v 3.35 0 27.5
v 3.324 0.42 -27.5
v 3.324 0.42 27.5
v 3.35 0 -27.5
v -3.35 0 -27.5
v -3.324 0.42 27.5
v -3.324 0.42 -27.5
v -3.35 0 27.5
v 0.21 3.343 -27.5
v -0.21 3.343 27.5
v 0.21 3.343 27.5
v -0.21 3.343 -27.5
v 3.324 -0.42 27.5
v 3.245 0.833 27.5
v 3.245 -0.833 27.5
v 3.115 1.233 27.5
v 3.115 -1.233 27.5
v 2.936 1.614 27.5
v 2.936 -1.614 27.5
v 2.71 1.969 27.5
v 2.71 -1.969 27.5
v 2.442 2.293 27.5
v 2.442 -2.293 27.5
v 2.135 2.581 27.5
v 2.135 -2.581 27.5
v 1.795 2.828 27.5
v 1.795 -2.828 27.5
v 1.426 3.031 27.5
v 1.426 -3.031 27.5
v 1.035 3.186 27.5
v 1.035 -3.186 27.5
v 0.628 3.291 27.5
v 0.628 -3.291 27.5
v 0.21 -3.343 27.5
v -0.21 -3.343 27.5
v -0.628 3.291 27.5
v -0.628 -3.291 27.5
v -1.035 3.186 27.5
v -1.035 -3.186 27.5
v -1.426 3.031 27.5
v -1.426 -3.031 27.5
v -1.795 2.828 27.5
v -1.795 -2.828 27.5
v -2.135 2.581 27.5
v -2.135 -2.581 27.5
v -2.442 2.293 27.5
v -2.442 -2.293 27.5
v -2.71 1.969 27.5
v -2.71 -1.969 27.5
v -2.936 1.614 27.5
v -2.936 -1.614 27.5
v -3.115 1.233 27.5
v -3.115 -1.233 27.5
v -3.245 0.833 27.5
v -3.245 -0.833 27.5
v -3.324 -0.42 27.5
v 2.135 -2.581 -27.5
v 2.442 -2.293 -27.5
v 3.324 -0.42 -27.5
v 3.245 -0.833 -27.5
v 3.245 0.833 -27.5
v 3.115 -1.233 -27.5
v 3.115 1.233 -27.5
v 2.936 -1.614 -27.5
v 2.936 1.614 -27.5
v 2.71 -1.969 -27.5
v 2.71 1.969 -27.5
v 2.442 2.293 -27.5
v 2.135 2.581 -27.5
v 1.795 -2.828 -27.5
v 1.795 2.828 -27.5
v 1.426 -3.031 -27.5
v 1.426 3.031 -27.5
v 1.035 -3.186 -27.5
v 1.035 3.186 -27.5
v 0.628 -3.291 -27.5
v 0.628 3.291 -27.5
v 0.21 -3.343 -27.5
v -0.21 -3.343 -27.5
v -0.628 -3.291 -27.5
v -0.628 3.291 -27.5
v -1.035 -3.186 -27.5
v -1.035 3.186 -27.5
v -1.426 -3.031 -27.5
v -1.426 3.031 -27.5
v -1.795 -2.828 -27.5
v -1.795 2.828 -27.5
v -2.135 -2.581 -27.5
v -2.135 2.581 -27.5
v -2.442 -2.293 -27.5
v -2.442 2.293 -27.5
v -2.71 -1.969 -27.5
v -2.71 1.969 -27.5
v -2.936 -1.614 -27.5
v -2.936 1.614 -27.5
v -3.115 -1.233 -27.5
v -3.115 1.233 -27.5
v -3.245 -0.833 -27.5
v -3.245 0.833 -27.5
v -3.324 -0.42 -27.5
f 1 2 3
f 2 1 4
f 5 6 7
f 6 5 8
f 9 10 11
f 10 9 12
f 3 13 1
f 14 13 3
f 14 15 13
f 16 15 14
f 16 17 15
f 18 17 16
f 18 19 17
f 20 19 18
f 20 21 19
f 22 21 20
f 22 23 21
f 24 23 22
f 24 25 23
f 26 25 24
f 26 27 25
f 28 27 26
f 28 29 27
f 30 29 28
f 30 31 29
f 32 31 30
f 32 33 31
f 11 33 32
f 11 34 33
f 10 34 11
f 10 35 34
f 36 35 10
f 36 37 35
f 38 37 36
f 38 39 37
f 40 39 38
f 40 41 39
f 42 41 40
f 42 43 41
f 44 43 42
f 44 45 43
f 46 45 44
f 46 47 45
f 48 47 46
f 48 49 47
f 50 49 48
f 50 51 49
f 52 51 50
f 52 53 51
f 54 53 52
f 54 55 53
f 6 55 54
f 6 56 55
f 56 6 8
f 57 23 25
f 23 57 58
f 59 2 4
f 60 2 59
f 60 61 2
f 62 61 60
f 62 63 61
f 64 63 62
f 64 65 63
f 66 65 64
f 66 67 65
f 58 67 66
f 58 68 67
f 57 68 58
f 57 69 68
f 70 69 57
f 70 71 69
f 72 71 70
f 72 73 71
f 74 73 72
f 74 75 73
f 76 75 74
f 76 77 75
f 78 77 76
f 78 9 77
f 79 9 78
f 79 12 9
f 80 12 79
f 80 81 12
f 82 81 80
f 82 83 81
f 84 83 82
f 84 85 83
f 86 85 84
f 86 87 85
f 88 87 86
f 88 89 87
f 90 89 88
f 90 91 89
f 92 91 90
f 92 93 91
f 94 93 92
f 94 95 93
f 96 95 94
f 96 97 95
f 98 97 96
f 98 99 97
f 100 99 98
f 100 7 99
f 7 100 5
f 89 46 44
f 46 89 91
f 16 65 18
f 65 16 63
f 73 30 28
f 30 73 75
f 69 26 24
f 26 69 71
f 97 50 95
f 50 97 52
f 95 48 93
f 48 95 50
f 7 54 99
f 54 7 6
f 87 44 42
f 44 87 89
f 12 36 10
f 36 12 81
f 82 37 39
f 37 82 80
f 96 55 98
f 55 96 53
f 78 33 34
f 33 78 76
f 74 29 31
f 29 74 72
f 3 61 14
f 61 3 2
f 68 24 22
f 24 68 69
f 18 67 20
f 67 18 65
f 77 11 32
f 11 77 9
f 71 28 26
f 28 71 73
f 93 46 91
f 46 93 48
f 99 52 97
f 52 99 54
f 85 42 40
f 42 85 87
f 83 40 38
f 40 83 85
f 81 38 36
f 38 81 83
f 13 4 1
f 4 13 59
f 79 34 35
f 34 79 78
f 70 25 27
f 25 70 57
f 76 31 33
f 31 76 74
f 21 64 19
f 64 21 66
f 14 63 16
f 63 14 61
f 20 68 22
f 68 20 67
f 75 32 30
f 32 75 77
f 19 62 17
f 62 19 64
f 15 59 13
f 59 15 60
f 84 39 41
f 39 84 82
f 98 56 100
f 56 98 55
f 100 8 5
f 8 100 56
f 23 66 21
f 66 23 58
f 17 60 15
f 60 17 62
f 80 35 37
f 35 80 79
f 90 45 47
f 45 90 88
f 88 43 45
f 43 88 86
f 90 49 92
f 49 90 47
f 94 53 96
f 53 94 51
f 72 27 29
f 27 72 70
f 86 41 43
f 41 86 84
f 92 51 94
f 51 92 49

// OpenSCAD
$fn = 50;


difference() {
	union() {
		translate(v = [0, 0, -27.5000000000]) {
			cylinder(h = 55, r = 3.3500000000);
		}
	}
	union() {
		translate(v = [0, 0, -100.0000000000]) {
			cylinder(h = 200, r = 0);
		}
	}
}
